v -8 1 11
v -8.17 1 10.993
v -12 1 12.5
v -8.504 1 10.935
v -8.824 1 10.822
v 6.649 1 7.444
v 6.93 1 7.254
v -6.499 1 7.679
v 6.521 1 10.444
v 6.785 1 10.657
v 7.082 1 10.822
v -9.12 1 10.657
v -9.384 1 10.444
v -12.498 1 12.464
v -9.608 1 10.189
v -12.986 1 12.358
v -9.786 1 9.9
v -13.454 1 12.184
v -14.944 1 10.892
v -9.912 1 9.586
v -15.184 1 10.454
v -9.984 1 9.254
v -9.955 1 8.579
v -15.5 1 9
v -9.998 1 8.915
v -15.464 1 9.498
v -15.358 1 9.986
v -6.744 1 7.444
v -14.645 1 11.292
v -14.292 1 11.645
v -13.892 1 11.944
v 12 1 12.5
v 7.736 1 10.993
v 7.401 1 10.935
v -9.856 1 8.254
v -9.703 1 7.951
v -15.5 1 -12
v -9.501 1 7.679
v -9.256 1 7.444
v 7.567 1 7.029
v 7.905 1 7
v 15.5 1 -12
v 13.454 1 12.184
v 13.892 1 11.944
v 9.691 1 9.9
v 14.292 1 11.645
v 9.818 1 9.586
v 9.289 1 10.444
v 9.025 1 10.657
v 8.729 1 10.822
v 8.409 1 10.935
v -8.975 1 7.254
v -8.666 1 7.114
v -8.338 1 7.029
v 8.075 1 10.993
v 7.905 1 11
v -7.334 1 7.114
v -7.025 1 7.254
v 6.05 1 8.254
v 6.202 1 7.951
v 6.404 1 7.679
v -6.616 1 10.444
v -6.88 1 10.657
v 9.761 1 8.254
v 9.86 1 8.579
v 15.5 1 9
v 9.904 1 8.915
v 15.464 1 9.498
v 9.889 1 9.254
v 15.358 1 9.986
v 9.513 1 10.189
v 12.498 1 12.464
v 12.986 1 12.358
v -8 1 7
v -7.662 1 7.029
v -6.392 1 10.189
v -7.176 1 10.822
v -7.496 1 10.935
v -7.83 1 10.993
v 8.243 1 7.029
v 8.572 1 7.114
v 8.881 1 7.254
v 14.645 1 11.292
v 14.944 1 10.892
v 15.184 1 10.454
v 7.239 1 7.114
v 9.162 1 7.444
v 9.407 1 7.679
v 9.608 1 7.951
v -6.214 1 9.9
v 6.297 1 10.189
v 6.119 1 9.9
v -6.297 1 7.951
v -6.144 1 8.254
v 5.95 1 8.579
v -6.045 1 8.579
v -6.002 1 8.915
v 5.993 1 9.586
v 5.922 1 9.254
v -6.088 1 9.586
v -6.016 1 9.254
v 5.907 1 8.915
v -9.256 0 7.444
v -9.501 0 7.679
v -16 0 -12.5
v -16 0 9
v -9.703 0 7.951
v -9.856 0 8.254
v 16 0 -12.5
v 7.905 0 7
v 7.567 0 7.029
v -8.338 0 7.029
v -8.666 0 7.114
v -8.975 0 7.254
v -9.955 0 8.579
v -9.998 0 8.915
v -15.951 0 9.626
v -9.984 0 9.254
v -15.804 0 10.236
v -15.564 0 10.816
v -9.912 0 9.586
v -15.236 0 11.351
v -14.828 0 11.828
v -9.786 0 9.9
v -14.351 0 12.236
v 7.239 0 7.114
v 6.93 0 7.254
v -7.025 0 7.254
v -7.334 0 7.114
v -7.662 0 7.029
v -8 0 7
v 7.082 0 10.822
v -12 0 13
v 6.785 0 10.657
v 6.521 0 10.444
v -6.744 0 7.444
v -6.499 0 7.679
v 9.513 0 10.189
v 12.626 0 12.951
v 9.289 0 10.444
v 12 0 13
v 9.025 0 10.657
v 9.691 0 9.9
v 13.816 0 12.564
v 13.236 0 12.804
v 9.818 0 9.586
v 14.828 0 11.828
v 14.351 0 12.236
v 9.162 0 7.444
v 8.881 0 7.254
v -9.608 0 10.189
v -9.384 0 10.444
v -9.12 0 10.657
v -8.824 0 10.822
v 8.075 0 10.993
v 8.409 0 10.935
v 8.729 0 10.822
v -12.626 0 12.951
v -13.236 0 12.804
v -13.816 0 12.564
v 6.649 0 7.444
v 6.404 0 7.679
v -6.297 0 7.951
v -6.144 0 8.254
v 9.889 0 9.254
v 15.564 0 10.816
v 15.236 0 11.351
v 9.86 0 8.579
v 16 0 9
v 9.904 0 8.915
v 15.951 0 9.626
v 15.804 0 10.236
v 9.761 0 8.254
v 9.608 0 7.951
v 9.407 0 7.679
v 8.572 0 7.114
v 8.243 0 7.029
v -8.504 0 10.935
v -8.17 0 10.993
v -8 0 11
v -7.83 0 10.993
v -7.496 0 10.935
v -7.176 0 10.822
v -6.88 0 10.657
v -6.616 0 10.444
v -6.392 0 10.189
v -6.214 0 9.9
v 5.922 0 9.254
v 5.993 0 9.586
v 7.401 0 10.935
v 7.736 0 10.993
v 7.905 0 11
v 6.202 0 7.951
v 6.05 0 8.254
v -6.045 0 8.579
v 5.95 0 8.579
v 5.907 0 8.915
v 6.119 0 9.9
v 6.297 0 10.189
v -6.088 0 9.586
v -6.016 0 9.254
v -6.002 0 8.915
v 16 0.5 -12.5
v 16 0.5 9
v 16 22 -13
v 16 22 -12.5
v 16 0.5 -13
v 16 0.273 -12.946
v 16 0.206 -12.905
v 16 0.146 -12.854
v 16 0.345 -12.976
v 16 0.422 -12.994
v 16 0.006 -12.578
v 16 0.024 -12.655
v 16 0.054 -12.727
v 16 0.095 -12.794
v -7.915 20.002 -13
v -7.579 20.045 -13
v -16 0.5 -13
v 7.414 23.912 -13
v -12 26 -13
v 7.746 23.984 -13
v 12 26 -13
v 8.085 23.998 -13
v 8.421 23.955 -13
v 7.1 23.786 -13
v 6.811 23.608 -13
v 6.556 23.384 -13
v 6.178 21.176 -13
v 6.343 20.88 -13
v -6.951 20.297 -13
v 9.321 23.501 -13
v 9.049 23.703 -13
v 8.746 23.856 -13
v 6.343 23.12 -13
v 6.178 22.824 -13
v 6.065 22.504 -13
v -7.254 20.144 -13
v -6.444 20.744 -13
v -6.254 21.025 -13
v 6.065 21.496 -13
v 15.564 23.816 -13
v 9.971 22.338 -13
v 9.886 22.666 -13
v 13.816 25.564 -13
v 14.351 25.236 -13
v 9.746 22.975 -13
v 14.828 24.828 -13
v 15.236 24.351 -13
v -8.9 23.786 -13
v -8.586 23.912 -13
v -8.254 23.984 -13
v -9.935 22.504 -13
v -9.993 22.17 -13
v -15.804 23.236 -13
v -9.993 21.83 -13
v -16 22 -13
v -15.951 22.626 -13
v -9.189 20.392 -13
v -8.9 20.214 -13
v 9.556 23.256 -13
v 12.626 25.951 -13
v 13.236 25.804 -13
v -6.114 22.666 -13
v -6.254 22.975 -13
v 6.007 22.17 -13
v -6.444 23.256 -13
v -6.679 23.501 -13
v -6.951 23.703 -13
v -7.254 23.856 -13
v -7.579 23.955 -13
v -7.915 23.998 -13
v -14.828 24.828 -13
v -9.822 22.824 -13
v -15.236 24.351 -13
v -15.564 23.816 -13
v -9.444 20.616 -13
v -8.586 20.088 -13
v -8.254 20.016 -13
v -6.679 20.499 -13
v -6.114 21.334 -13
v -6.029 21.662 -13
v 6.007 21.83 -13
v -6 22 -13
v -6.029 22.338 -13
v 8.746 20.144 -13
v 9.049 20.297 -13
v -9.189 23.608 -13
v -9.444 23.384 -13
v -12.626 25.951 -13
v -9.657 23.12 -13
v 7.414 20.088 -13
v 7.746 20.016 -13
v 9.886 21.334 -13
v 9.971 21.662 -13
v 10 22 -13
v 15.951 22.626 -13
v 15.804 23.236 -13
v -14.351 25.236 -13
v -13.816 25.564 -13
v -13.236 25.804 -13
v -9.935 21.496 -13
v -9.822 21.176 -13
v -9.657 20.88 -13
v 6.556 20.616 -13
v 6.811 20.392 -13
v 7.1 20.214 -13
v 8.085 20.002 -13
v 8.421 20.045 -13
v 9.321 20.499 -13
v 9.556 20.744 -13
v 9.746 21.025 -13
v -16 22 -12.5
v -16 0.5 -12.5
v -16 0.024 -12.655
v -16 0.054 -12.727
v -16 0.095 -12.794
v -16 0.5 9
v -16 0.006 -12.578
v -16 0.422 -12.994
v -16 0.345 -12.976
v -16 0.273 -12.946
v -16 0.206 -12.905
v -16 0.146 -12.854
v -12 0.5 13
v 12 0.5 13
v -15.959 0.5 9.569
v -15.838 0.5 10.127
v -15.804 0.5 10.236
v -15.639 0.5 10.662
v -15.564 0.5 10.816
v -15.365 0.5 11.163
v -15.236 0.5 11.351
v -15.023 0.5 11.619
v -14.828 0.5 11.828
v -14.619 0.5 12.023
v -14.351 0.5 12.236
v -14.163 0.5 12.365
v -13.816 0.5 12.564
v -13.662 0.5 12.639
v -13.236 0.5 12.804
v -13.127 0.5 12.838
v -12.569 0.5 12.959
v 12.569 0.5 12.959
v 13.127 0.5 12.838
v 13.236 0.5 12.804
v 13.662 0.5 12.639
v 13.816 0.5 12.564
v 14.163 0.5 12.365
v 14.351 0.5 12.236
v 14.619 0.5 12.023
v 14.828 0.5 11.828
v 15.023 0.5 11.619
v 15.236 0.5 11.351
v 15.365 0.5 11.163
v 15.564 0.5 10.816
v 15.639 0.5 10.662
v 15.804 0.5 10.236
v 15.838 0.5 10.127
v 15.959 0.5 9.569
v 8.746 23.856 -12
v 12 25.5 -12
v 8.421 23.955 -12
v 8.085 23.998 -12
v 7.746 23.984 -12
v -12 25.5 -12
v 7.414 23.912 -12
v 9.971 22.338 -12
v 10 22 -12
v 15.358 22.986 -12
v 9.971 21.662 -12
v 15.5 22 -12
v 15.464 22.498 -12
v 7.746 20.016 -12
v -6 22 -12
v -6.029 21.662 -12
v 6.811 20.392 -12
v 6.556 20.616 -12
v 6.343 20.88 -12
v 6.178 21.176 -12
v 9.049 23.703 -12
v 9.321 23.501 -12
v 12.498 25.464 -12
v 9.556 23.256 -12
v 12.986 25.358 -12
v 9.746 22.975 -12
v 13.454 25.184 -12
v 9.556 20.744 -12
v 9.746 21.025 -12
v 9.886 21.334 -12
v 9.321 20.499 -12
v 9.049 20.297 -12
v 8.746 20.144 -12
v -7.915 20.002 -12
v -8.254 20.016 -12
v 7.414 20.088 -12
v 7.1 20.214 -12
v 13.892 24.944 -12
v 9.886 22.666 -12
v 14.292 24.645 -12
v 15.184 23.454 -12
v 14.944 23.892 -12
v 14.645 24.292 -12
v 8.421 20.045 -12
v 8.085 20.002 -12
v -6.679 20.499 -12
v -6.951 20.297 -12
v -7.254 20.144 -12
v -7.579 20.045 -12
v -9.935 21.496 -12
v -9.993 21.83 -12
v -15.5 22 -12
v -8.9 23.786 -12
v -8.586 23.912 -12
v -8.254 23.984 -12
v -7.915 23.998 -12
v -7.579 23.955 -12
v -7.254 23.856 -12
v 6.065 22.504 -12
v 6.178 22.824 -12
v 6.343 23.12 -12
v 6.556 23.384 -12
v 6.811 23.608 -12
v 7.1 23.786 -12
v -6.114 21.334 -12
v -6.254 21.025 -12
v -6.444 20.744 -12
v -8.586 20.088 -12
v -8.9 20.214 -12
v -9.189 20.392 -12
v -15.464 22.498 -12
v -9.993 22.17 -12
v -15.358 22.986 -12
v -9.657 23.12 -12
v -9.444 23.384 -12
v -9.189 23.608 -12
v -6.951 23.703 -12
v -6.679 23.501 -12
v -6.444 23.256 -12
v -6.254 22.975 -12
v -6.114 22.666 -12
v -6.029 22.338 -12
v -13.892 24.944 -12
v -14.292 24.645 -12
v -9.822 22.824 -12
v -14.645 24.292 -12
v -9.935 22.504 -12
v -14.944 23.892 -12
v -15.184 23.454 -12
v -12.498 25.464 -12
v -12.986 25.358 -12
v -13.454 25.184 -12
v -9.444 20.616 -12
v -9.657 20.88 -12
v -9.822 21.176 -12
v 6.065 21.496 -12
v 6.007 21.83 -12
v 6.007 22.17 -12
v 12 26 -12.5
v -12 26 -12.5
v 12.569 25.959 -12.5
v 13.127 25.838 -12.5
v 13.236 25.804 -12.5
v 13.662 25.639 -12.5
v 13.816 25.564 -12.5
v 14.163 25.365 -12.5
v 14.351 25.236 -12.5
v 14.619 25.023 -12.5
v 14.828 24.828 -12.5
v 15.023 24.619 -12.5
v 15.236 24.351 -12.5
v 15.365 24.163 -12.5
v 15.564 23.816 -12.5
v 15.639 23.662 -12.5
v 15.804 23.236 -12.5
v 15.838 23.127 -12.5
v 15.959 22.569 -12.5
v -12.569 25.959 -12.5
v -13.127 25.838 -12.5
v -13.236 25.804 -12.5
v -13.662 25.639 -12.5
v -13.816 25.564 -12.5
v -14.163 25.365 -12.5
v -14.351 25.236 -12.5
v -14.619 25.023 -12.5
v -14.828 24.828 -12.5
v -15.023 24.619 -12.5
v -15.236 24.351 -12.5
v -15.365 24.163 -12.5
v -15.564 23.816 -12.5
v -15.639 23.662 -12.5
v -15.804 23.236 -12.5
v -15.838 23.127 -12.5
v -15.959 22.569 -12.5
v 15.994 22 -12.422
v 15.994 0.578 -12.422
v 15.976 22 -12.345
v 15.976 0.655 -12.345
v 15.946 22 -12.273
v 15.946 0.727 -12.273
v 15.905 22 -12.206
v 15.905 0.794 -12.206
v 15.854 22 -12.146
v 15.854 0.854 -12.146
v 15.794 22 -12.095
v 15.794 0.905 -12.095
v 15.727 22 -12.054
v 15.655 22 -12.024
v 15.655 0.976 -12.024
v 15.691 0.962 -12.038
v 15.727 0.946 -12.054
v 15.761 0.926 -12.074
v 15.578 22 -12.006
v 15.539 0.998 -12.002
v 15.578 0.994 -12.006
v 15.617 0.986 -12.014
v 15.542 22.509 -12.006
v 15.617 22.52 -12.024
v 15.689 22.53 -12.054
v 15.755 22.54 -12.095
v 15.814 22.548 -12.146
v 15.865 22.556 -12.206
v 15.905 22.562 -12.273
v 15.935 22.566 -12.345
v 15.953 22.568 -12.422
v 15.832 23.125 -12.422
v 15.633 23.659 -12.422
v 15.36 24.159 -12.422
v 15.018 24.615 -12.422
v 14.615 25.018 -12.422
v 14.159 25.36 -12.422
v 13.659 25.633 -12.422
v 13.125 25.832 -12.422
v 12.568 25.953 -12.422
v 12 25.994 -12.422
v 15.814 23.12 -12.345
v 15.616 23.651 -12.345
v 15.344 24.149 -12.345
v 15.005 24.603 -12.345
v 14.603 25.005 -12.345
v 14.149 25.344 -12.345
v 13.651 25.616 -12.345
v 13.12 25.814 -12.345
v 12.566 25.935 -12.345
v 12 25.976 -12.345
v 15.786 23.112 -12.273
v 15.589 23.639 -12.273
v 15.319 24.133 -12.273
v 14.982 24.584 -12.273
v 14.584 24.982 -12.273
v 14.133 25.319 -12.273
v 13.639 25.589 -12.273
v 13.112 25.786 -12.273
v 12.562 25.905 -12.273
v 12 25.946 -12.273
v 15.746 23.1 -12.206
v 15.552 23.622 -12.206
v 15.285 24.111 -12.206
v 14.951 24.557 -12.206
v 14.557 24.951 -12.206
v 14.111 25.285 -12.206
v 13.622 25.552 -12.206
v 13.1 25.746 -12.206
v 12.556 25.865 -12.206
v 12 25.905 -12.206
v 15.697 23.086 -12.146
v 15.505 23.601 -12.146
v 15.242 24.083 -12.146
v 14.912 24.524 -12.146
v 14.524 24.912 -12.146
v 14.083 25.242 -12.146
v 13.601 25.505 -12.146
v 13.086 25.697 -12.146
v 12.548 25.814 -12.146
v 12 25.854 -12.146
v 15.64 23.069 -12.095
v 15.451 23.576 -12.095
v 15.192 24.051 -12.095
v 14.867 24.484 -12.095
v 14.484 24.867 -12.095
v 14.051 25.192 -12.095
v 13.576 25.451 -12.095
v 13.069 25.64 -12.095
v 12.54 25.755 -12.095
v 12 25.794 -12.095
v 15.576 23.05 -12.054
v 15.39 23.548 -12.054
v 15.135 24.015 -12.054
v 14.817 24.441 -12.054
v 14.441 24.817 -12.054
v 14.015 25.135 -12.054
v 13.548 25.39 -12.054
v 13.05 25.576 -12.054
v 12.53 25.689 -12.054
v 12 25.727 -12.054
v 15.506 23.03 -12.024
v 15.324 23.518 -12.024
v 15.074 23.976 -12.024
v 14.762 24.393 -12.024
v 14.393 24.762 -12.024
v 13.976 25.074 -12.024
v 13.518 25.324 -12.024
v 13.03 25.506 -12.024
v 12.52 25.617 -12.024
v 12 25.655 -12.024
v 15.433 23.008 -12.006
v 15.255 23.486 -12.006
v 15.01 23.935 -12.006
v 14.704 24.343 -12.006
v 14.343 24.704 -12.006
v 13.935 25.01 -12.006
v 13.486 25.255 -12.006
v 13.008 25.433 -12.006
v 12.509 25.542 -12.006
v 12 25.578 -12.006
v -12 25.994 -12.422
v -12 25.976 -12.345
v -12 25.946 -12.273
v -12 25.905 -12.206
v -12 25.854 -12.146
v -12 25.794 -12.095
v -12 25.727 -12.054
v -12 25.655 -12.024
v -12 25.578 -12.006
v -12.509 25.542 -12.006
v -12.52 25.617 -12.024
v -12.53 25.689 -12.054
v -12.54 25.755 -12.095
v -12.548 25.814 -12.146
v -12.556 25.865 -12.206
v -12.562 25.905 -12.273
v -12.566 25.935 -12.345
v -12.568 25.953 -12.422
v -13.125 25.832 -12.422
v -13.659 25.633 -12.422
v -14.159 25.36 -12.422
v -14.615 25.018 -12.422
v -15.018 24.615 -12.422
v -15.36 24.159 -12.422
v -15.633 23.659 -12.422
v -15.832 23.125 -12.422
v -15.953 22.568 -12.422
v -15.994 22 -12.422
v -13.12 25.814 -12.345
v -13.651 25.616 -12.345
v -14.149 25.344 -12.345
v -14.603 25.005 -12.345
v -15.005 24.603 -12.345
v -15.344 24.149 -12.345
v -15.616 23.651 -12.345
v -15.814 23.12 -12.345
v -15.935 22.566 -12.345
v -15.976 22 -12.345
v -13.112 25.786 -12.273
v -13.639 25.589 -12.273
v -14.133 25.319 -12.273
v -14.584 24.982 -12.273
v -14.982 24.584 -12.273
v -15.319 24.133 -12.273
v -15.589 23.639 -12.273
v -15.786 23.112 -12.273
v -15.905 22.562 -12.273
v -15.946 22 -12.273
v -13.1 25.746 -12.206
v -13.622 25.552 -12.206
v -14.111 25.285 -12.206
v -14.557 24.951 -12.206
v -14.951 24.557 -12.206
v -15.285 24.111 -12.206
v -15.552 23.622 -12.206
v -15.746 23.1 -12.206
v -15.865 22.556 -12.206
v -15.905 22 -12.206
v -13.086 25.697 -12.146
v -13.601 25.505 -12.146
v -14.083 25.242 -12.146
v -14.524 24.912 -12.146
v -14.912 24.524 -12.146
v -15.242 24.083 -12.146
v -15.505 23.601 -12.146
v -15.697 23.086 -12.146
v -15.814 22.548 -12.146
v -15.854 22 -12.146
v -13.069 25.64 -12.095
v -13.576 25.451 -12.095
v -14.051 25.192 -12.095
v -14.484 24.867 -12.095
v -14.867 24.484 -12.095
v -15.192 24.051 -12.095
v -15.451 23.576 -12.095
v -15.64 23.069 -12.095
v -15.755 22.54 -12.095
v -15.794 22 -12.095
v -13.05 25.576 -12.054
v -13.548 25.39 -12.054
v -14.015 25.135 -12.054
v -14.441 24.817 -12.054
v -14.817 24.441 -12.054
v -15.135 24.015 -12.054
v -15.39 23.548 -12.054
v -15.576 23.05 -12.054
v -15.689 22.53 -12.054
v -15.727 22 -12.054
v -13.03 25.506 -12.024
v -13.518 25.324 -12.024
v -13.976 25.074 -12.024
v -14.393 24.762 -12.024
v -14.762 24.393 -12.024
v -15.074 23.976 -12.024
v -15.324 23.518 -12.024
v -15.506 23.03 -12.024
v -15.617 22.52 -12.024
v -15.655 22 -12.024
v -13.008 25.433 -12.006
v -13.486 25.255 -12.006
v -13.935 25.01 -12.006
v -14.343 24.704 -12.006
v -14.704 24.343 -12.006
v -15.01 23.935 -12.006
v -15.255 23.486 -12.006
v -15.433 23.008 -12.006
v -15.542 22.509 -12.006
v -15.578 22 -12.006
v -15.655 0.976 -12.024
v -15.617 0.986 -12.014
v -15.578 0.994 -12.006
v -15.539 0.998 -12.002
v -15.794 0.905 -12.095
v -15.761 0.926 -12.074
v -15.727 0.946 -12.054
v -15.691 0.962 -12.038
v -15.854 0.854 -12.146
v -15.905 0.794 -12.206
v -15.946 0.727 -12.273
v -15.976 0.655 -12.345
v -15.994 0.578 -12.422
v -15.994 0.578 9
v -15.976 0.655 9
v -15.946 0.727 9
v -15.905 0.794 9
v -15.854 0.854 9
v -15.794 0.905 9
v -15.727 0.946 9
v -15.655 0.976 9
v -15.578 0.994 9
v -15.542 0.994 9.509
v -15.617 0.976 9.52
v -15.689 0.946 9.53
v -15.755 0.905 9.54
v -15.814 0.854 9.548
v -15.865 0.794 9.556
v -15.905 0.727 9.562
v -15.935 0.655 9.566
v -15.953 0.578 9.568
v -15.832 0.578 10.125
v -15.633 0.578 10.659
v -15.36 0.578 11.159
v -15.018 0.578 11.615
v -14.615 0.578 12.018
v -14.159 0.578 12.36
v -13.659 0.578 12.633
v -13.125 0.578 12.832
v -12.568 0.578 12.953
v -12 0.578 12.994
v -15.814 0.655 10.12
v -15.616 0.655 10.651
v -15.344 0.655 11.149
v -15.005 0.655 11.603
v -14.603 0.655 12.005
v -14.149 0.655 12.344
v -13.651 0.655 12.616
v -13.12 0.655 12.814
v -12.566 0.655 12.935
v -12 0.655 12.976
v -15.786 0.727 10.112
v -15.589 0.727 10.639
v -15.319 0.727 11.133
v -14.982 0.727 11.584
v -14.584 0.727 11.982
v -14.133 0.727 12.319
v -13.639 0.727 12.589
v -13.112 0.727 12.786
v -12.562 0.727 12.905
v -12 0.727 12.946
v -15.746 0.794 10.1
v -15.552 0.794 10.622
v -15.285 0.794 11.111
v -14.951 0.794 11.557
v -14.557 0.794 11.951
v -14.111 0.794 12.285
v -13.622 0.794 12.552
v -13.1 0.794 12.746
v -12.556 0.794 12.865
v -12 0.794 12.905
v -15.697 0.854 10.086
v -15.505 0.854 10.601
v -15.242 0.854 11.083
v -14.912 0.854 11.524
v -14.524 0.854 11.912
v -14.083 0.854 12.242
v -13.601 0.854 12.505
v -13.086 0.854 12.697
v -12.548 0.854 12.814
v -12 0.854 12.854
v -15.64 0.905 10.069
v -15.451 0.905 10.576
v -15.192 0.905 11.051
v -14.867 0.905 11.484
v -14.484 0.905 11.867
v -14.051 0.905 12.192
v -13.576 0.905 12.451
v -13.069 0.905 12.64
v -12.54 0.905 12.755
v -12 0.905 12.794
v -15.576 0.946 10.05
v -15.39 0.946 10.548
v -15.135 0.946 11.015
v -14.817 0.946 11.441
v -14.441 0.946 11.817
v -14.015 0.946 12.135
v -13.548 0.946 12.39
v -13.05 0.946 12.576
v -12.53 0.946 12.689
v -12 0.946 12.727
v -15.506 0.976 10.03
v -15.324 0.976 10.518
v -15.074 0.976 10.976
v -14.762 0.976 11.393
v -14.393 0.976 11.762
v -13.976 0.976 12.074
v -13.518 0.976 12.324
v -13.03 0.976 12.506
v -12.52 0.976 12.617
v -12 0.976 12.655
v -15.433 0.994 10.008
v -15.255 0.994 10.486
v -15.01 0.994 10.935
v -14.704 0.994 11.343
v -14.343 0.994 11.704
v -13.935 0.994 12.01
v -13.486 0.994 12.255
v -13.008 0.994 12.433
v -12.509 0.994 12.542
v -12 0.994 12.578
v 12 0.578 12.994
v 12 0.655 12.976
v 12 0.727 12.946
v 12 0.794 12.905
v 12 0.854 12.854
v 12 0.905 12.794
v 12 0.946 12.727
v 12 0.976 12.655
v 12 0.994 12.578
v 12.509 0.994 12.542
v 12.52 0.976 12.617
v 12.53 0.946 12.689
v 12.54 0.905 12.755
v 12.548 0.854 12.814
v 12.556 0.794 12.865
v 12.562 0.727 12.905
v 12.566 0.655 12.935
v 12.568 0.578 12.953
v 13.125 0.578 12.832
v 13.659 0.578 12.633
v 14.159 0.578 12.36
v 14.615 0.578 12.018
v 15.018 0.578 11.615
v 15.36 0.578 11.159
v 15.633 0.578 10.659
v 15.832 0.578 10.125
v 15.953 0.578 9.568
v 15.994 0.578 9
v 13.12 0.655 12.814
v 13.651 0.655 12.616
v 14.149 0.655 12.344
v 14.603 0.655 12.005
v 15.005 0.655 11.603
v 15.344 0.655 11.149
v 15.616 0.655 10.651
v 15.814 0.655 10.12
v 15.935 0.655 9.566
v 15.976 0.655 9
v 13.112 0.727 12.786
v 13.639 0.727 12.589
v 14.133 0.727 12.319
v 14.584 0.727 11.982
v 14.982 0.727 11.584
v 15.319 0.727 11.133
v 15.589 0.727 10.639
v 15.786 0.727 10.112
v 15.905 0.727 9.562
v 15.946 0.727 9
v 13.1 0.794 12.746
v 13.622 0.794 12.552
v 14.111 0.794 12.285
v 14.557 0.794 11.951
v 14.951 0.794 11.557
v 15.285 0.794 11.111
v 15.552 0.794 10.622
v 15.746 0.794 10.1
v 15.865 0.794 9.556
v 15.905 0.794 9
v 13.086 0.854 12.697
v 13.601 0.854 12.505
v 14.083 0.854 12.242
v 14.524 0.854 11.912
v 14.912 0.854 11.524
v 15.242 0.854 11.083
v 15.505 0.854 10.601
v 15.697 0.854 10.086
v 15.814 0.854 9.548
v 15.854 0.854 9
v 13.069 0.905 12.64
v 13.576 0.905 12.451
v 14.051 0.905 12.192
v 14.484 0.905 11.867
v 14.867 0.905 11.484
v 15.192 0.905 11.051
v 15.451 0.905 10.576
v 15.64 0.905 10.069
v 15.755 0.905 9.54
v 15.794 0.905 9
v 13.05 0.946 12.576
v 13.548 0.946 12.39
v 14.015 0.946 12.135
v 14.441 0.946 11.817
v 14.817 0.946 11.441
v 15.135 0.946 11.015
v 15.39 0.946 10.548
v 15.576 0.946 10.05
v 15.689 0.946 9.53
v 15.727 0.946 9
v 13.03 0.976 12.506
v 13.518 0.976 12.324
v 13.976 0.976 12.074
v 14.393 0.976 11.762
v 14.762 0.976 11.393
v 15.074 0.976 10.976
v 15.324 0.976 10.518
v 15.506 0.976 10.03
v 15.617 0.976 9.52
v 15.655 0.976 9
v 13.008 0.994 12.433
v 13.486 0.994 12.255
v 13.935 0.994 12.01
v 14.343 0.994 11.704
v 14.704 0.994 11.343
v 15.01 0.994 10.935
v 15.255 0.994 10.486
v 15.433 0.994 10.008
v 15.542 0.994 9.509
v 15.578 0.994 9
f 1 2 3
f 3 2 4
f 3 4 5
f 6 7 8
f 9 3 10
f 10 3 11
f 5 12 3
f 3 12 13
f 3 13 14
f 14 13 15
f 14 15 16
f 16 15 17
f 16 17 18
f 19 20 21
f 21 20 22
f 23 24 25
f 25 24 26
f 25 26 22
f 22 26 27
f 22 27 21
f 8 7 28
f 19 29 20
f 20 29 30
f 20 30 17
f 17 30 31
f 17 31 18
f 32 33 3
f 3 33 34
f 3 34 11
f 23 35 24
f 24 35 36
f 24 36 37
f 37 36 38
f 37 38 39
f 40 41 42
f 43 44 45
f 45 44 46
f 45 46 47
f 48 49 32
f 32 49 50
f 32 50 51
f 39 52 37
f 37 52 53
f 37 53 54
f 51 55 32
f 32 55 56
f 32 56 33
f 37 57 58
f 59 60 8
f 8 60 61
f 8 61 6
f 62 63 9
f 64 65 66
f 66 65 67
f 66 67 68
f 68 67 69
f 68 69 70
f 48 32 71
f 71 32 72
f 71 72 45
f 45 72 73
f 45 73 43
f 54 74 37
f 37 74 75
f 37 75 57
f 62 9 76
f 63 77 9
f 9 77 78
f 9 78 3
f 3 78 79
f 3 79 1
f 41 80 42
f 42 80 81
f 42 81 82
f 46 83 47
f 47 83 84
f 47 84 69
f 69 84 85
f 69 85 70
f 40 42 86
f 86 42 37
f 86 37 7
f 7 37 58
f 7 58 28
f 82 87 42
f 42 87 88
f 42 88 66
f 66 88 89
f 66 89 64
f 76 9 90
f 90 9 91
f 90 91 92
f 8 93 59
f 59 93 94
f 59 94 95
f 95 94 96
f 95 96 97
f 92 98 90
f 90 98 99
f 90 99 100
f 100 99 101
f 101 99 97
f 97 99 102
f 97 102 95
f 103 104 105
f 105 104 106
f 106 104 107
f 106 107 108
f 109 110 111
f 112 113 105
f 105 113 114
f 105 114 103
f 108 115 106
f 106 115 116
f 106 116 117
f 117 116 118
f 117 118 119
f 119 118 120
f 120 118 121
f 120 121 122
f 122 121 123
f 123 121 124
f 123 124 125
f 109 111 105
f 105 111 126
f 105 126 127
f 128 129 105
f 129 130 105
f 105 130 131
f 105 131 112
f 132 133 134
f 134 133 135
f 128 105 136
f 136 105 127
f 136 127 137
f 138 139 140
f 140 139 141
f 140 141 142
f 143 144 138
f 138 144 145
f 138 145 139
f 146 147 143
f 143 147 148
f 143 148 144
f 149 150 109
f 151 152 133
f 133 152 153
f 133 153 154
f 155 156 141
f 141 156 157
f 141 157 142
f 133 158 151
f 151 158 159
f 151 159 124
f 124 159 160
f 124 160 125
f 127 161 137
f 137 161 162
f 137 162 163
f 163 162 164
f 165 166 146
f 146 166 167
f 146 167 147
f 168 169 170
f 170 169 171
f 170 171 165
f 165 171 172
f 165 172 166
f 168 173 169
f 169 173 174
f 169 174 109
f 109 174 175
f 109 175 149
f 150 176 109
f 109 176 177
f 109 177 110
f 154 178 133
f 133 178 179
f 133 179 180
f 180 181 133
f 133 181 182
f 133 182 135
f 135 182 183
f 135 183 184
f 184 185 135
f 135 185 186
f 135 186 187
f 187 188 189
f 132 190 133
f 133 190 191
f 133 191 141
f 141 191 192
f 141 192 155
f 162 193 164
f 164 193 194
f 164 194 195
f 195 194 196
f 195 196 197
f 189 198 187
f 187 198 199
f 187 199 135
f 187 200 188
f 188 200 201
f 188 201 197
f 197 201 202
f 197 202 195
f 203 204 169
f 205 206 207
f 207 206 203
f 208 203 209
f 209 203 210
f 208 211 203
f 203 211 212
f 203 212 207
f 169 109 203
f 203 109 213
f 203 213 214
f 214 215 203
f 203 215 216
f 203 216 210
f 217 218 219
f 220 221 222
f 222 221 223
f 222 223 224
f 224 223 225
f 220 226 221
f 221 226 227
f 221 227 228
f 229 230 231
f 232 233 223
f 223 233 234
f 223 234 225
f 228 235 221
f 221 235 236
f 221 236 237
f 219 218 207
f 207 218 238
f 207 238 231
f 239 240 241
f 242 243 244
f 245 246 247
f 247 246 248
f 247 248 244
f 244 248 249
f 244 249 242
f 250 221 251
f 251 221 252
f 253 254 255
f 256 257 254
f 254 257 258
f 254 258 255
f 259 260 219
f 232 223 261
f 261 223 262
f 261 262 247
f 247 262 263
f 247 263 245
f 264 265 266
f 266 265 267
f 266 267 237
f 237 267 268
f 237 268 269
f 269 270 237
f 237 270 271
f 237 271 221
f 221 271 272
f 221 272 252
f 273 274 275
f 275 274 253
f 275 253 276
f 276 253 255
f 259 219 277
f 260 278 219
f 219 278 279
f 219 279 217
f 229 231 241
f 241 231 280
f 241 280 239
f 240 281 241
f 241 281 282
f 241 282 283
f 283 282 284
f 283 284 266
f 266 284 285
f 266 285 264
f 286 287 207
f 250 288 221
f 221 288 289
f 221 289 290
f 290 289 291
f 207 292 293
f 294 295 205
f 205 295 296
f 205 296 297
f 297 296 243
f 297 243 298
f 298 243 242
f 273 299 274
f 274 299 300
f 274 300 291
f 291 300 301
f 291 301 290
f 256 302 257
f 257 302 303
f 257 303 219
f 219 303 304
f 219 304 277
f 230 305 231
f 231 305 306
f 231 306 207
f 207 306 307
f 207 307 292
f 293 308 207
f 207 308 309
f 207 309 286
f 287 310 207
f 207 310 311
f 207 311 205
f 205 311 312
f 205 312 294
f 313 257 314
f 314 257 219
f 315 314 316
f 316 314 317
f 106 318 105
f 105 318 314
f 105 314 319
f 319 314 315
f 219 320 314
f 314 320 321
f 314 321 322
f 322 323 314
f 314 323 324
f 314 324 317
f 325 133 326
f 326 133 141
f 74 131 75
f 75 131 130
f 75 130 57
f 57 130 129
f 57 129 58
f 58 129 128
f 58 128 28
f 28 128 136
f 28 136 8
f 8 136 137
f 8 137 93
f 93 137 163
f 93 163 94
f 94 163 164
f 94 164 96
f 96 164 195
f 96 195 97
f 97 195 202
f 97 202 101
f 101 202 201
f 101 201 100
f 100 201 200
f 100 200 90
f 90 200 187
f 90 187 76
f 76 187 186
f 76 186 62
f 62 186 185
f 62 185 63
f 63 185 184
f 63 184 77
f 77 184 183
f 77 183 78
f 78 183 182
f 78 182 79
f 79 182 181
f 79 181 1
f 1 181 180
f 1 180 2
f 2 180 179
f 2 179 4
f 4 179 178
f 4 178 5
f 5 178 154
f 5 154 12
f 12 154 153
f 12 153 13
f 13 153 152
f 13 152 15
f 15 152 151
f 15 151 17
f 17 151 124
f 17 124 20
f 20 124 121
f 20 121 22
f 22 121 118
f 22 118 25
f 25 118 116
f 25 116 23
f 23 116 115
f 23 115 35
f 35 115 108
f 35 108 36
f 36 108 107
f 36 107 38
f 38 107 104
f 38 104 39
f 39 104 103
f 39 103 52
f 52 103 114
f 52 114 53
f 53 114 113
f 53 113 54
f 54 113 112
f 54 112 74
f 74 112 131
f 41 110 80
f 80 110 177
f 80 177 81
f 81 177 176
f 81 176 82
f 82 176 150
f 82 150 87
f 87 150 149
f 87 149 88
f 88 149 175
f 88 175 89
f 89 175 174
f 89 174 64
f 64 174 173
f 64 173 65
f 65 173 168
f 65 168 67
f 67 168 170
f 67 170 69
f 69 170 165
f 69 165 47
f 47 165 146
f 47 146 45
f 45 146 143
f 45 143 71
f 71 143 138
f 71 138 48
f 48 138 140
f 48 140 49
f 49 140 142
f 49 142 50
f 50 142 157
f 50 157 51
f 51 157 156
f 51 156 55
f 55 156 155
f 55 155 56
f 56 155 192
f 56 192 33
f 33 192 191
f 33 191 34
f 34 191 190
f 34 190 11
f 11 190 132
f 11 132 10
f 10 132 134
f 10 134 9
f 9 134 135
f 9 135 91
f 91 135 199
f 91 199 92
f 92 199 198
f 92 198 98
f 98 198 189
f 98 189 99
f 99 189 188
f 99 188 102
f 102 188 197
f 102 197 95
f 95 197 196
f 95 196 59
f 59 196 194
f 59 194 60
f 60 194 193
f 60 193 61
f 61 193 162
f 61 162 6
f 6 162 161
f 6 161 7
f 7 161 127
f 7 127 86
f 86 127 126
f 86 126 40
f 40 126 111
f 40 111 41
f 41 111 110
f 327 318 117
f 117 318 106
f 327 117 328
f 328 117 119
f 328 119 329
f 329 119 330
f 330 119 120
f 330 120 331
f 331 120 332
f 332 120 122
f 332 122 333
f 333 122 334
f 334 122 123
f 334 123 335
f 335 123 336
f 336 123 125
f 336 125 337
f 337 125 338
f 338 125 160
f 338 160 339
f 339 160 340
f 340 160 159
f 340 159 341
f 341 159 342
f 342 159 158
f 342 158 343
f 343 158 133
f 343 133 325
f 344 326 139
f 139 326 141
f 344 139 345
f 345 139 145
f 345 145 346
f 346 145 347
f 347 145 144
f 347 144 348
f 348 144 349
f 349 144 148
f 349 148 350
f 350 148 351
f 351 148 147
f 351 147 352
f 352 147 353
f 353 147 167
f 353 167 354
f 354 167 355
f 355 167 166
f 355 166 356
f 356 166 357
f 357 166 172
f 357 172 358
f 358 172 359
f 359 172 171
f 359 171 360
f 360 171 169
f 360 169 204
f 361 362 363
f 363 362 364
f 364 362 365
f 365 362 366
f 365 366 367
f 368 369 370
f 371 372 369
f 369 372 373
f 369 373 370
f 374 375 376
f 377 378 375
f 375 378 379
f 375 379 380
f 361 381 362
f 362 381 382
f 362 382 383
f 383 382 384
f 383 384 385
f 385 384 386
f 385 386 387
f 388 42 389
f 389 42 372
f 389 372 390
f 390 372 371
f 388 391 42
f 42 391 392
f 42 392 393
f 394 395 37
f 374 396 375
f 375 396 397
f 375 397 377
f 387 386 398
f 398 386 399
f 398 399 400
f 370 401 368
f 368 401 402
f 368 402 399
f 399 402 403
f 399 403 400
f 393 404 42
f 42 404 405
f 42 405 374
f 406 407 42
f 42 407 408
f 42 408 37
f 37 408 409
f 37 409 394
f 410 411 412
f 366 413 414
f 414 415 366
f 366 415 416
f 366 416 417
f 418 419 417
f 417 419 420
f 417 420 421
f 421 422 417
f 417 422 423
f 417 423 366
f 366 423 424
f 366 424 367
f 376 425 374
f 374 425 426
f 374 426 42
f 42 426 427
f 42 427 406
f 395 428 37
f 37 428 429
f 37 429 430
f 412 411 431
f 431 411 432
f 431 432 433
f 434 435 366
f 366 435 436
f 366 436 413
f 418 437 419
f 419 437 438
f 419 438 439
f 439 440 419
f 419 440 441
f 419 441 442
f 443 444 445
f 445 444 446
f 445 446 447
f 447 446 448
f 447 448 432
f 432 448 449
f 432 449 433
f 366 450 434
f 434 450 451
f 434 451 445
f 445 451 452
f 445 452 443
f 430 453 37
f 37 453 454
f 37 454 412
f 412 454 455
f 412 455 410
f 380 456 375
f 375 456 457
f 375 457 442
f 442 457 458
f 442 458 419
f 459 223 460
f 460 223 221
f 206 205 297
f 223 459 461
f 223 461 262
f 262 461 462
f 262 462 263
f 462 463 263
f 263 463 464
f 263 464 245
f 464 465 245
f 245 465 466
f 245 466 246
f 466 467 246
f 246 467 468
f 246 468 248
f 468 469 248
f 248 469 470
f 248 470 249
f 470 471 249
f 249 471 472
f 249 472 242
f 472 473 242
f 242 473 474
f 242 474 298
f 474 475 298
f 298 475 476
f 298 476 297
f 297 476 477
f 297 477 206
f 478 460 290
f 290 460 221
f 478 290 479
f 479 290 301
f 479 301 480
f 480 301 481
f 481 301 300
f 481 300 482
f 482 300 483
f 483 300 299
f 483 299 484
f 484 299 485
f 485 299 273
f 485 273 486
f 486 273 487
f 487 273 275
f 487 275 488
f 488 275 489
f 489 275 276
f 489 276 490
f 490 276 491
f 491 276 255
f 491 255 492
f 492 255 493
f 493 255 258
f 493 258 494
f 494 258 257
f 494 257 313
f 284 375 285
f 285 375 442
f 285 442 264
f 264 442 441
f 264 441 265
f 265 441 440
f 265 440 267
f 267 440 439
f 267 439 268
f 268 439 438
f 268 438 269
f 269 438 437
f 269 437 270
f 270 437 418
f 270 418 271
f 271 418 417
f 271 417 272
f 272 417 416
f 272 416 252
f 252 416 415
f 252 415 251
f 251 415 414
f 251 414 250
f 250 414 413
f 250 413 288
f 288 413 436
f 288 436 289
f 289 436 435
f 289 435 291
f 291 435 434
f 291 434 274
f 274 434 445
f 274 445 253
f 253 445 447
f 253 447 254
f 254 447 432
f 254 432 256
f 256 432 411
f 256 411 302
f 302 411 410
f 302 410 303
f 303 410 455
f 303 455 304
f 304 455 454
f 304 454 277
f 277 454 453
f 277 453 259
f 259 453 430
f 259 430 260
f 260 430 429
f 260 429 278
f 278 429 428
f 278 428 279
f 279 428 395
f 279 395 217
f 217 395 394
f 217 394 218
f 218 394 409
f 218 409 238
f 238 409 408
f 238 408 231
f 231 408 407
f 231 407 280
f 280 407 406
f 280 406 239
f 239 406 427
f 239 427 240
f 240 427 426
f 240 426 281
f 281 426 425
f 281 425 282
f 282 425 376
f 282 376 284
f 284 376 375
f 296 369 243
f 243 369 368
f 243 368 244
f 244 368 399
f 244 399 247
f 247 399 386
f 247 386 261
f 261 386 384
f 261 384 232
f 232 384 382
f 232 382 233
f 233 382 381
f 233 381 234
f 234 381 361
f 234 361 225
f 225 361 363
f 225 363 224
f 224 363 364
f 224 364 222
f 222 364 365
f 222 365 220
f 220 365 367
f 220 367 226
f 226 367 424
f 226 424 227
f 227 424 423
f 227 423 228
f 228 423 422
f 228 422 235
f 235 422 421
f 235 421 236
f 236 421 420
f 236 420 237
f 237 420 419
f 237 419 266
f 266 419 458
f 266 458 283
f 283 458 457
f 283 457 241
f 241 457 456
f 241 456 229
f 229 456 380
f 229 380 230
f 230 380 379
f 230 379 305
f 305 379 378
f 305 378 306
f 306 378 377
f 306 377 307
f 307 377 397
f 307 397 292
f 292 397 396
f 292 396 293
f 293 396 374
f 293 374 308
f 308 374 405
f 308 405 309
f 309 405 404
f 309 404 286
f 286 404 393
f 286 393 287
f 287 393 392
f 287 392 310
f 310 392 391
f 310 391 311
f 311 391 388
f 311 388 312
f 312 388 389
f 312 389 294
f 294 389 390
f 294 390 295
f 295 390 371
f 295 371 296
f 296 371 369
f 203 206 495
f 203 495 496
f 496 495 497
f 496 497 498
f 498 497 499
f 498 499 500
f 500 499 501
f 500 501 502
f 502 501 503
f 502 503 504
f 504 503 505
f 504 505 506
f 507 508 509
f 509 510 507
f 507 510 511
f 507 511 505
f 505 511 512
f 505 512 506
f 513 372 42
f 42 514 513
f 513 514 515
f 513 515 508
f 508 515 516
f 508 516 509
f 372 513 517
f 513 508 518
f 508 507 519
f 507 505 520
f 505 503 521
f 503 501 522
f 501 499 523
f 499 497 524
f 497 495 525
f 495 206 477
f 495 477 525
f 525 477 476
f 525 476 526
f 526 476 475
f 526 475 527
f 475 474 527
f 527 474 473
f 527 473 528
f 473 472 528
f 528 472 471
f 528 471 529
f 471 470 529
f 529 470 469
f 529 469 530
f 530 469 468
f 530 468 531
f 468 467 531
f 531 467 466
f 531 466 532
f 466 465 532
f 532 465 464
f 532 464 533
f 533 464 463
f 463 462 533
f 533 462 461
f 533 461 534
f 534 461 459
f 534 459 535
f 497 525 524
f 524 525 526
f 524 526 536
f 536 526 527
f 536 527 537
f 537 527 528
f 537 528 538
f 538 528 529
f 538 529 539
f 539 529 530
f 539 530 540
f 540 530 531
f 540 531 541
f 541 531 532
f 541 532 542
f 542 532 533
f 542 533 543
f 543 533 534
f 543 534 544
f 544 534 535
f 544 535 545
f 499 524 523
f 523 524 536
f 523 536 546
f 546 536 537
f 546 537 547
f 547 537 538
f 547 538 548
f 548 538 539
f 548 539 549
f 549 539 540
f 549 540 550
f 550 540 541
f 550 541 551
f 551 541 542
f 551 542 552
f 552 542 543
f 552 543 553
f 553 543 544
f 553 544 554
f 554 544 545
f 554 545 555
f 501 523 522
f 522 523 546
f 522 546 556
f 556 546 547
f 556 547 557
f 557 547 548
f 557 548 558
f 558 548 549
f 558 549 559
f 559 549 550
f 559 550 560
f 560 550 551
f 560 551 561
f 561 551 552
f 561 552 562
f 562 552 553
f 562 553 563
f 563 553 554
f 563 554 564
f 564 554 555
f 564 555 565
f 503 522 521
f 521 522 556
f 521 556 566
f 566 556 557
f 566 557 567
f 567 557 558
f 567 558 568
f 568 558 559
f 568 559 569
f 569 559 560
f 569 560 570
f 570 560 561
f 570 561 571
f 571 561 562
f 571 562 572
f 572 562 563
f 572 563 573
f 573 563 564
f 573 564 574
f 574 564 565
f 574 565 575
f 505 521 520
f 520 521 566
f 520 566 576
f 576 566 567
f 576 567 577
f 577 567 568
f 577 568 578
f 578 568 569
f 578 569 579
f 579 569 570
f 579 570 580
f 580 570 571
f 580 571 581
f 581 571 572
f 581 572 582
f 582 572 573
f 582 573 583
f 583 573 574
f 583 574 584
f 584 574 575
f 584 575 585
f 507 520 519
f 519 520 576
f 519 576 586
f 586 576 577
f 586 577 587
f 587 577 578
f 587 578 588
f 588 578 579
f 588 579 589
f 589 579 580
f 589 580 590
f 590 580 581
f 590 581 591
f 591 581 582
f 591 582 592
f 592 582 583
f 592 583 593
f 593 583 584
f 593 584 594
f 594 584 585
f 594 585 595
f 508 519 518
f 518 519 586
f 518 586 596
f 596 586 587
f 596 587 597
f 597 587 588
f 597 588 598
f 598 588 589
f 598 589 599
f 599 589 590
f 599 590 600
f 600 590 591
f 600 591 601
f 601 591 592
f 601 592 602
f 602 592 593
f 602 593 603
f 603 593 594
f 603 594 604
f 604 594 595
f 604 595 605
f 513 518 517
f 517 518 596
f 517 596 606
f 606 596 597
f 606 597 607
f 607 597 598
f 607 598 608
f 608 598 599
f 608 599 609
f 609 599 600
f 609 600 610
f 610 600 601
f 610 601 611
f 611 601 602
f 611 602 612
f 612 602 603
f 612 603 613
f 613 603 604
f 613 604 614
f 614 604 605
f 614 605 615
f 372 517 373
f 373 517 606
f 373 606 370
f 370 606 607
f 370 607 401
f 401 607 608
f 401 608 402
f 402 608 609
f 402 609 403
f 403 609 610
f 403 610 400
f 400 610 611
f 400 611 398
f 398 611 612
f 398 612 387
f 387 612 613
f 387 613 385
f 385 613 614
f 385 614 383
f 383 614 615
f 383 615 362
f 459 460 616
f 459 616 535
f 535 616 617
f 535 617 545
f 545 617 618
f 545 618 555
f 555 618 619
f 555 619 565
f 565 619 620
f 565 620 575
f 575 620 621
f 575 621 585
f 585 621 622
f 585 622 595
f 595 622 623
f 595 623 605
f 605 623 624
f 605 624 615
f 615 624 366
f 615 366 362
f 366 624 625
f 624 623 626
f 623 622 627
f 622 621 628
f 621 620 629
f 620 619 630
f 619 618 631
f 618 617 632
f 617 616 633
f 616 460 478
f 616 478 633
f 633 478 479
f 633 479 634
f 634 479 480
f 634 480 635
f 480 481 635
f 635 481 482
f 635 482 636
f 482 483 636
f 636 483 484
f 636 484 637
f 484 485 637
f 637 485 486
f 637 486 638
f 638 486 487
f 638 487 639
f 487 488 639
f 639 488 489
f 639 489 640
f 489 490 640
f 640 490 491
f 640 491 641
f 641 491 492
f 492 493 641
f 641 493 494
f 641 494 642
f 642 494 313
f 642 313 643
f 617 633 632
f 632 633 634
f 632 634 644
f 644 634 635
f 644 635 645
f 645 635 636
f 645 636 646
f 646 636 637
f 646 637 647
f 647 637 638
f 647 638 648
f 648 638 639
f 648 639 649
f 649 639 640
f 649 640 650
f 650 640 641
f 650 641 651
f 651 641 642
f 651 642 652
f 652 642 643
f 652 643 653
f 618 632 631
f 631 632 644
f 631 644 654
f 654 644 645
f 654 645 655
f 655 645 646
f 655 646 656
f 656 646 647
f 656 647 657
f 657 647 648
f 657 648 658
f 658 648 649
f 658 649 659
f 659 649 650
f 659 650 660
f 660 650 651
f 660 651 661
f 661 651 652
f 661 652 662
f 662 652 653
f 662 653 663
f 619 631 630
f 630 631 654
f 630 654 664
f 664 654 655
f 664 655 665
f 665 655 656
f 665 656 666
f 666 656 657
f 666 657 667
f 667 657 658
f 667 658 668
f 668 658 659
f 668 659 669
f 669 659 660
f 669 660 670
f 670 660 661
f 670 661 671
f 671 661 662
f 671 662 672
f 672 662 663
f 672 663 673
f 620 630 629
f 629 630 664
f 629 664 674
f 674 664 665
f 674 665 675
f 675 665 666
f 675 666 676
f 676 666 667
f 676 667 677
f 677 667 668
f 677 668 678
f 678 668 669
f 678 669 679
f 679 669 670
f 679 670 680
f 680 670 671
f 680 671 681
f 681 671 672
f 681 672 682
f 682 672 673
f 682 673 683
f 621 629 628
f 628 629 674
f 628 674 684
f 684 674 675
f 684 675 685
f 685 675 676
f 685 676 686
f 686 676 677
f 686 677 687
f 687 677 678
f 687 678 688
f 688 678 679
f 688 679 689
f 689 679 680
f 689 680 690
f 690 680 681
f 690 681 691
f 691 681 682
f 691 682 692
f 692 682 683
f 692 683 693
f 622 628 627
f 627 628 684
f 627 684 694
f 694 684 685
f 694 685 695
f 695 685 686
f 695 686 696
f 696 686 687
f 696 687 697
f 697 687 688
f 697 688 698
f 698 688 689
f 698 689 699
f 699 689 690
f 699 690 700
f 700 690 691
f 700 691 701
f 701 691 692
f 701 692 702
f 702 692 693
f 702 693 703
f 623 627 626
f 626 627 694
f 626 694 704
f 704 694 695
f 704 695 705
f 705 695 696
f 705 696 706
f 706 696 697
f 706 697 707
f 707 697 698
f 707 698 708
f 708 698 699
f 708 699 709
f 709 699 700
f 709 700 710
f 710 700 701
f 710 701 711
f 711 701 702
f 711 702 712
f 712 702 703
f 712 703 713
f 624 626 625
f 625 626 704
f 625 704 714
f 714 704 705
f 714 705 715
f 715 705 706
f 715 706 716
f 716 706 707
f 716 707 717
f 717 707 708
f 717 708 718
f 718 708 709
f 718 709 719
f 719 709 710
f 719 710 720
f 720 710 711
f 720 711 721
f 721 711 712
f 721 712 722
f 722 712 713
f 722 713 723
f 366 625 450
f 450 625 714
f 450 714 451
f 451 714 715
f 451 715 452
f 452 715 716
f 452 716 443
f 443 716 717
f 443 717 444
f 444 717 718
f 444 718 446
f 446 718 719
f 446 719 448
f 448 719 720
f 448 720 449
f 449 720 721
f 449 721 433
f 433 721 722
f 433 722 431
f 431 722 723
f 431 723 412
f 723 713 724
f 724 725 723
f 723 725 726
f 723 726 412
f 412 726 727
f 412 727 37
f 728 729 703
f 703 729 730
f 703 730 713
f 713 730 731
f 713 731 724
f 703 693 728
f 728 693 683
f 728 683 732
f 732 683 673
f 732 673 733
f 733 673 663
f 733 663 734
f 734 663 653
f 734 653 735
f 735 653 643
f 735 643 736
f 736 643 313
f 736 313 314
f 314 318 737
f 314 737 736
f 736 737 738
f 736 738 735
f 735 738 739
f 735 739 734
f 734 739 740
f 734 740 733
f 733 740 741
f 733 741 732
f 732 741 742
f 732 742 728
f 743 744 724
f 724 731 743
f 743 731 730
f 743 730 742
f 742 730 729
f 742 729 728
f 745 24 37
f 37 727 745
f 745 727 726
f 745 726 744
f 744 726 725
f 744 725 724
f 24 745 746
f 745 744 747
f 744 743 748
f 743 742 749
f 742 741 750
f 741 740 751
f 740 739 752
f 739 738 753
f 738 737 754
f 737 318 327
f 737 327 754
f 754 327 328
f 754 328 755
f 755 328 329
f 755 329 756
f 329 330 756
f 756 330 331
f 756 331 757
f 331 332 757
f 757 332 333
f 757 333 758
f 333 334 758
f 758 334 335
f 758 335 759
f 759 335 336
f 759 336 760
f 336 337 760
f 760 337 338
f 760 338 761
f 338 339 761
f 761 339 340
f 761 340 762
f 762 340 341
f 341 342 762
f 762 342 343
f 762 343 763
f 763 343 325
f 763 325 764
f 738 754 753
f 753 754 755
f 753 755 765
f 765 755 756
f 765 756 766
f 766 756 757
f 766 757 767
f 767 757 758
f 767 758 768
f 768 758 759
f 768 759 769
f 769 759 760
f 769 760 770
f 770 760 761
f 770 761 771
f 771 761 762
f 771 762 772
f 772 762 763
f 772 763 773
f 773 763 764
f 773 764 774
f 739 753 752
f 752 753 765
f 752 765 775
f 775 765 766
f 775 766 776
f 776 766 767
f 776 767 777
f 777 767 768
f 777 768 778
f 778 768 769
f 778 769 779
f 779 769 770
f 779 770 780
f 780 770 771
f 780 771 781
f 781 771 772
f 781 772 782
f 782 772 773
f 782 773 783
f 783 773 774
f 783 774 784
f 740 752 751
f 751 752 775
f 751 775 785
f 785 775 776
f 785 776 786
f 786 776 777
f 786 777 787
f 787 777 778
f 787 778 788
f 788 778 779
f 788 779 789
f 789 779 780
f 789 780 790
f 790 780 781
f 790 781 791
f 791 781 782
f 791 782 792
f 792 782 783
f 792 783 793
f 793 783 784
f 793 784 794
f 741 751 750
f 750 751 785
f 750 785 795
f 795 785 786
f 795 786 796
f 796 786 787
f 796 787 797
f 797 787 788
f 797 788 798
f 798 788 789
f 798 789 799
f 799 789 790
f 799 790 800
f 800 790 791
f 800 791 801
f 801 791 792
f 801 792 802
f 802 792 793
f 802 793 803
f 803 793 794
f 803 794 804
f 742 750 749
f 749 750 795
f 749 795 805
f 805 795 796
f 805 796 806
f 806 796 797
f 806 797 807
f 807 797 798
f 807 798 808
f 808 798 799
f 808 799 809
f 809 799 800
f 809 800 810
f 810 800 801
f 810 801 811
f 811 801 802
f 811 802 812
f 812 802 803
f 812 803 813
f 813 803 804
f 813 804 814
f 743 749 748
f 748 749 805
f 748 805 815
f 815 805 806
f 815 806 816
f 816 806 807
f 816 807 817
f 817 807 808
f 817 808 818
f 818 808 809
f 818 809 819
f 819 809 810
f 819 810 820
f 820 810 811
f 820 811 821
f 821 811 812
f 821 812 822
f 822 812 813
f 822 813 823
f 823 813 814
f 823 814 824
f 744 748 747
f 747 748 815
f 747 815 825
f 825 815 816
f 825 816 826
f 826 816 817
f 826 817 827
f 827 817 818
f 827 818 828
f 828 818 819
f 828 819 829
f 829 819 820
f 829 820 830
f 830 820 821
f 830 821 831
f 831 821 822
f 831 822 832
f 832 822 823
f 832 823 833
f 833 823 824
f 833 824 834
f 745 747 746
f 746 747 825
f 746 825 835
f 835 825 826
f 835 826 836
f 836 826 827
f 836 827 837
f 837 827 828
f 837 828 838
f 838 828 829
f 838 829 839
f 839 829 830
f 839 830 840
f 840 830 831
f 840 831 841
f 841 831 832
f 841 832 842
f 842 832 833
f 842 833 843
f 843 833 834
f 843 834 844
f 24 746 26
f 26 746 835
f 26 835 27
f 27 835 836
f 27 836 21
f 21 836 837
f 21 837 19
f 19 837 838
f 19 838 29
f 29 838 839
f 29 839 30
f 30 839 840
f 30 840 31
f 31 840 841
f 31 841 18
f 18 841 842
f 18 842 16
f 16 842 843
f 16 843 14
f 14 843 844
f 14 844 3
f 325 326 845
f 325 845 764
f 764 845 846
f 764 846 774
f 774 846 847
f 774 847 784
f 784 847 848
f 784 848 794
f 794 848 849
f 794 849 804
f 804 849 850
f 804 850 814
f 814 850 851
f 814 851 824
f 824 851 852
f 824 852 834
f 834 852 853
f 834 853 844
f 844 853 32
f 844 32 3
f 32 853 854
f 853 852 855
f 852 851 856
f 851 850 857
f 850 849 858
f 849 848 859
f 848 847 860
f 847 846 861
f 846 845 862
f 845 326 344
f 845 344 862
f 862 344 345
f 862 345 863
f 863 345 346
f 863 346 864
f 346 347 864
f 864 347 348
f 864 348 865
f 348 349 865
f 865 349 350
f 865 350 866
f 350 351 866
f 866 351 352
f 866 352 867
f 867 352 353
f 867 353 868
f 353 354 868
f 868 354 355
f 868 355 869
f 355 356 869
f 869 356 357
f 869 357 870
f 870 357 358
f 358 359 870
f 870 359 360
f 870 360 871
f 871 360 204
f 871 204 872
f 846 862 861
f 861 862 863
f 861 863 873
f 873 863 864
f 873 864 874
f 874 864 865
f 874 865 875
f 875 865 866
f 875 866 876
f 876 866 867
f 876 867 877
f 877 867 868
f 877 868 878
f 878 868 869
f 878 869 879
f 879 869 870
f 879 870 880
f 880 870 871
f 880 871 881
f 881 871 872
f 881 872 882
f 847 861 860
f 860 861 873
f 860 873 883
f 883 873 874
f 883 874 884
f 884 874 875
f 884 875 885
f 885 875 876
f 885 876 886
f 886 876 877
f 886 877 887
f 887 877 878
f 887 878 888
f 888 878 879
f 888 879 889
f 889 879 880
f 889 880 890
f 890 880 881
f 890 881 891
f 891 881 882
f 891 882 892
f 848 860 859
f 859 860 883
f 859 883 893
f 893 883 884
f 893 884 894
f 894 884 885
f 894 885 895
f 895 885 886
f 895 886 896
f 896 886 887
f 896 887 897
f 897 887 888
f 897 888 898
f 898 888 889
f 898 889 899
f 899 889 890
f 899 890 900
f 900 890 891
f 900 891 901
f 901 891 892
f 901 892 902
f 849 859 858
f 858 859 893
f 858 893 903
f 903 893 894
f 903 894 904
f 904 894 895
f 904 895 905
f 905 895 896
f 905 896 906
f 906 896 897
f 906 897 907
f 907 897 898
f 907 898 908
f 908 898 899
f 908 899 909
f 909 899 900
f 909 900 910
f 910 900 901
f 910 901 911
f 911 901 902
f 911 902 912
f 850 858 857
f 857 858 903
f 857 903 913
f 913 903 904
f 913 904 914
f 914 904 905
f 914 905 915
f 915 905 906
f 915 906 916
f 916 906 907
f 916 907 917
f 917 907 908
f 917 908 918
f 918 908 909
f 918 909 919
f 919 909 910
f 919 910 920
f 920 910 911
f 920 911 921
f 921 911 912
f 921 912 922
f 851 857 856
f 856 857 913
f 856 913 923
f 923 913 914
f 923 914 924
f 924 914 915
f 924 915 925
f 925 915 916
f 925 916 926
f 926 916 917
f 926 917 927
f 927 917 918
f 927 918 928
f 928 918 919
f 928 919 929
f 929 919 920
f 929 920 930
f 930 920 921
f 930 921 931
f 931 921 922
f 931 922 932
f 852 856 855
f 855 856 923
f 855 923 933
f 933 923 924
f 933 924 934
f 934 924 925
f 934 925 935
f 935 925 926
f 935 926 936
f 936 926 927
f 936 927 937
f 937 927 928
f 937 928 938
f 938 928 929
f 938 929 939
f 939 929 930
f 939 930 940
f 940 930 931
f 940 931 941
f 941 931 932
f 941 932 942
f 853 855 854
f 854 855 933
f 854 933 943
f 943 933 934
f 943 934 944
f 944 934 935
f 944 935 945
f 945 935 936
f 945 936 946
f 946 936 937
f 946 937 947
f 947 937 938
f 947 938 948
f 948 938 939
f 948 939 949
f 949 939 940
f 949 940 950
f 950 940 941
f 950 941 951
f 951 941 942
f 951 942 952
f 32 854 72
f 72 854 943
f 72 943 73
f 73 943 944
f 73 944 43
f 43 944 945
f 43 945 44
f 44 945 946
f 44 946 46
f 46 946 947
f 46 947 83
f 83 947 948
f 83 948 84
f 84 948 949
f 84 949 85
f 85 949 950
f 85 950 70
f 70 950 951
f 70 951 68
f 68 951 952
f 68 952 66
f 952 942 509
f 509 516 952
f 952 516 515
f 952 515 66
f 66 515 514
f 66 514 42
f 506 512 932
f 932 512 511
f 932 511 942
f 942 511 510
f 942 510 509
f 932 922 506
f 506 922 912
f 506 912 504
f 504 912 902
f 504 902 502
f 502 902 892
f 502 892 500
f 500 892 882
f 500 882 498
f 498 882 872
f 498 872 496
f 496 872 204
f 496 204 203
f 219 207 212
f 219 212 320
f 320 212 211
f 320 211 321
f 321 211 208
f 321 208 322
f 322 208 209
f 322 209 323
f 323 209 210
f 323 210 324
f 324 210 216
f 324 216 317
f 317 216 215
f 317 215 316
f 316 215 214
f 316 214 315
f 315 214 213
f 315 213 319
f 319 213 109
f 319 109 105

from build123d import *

# Parameters (mm, degrees)
SKETCH1_W           = 32
SKETCH1_H           = 26
SKETCH1_R           = 2
BOSS_EXTRUDE1_DEPTH = 1
FILLET1_R           = 4
FILLET2_R           = 4
SKETCH2_W           = 32
SKETCH2_H           = 1
BOSS_EXTRUDE2_DEPTH = 25
FILLET3_R           = 4
FILLET4_R           = 4
SKETCH3_R           = 2
CUT_EXTRUDE1_DEPTH  = 40.458839314
FILLET5_R           = 0.5
FILLET6_R           = 0.5
FILLET7_R           = 0.5


with BuildPart() as part:
    # Sketch1 → Boss-Extrude1 (new body)
    with BuildSketch(Plane(origin=(0, 0, 0), x_dir=(1, 0, 0), z_dir=(0, 1, 0))):
        Rectangle(SKETCH1_W, SKETCH1_H)
        with Locations(Location((-8, -9, 0), (0, 0, 270))):
            Circle(SKETCH1_R, mode=Mode.SUBTRACT)
        with Locations(Location((7.905303365, -9, 0), (0, 0, 270))):
            Circle(SKETCH1_R, mode=Mode.SUBTRACT)
    extrude(amount=BOSS_EXTRUDE1_DEPTH)

    # Fillet1
    fillet1_edges = [part.edges().sort_by_distance(p)[0] for p in [
        (-16, 0.5, 13),
    ]]
    fillet(fillet1_edges, radius=FILLET1_R)

    # Fillet2
    fillet2_edges = [part.edges().sort_by_distance(p)[0] for p in [
        (16, 0.5, 13),
    ]]
    fillet(fillet2_edges, radius=FILLET2_R)

    # Sketch2 → Boss-Extrude2 (add)
    with BuildSketch(Plane(origin=(0, 1, 0), x_dir=(1, 0, 0), z_dir=(0, 1, 0))):
        with Locations((0, 12.5)):
            Rectangle(SKETCH2_W, SKETCH2_H)
    extrude(amount=BOSS_EXTRUDE2_DEPTH)

    # Fillet3
    fillet3_edges = [part.edges().sort_by_distance(p)[0] for p in [
        (16, 26, -12.5),
    ]]
    fillet(fillet3_edges, radius=FILLET3_R)

    # Fillet4
    fillet4_edges = [part.edges().sort_by_distance(p)[0] for p in [
        (-16, 26, -12.5),
    ]]
    fillet(fillet4_edges, radius=FILLET4_R)

    # Sketch3 → Cut-Extrude1 (cut, through all)
    with BuildSketch(Plane.XY.offset(-12)):
        with Locations((-8, 22)):
            Circle(SKETCH3_R)
        with Locations((8, 22)):
            Circle(SKETCH3_R)
    extrude(amount=-CUT_EXTRUDE1_DEPTH, mode=Mode.SUBTRACT)

    # Fillet5
    fillet5_edges = [part.edges().sort_by_distance(p)[0] for p in [
        (16, 11.5, -12),
        (14.828427125, 24.828427125, -12),
        (0, 26, -12),
        (-16, 11.5, -12),
        (-14.828427125, 24.828427125, -12),
    ]]
    fillet(fillet5_edges, radius=FILLET5_R)

    # Fillet6
    fillet6_edges = [part.edges().sort_by_distance(p)[0] for p in [
        (16, 1, -1.75),
        (14.828427125, 1, 11.828427125),
        (0, 1, 13),
        (-14.828427125, 1, 11.828427125),
        (-16, 1, -1.75),
    ]]
    fillet(fillet6_edges, radius=FILLET6_R)

    # Fillet7
    fillet7_edges = [part.edges().sort_by_distance(p)[0] for p in [
        (0, 0, -13),
    ]]
    fillet(fillet7_edges, radius=FILLET7_R)


solid = part.part
